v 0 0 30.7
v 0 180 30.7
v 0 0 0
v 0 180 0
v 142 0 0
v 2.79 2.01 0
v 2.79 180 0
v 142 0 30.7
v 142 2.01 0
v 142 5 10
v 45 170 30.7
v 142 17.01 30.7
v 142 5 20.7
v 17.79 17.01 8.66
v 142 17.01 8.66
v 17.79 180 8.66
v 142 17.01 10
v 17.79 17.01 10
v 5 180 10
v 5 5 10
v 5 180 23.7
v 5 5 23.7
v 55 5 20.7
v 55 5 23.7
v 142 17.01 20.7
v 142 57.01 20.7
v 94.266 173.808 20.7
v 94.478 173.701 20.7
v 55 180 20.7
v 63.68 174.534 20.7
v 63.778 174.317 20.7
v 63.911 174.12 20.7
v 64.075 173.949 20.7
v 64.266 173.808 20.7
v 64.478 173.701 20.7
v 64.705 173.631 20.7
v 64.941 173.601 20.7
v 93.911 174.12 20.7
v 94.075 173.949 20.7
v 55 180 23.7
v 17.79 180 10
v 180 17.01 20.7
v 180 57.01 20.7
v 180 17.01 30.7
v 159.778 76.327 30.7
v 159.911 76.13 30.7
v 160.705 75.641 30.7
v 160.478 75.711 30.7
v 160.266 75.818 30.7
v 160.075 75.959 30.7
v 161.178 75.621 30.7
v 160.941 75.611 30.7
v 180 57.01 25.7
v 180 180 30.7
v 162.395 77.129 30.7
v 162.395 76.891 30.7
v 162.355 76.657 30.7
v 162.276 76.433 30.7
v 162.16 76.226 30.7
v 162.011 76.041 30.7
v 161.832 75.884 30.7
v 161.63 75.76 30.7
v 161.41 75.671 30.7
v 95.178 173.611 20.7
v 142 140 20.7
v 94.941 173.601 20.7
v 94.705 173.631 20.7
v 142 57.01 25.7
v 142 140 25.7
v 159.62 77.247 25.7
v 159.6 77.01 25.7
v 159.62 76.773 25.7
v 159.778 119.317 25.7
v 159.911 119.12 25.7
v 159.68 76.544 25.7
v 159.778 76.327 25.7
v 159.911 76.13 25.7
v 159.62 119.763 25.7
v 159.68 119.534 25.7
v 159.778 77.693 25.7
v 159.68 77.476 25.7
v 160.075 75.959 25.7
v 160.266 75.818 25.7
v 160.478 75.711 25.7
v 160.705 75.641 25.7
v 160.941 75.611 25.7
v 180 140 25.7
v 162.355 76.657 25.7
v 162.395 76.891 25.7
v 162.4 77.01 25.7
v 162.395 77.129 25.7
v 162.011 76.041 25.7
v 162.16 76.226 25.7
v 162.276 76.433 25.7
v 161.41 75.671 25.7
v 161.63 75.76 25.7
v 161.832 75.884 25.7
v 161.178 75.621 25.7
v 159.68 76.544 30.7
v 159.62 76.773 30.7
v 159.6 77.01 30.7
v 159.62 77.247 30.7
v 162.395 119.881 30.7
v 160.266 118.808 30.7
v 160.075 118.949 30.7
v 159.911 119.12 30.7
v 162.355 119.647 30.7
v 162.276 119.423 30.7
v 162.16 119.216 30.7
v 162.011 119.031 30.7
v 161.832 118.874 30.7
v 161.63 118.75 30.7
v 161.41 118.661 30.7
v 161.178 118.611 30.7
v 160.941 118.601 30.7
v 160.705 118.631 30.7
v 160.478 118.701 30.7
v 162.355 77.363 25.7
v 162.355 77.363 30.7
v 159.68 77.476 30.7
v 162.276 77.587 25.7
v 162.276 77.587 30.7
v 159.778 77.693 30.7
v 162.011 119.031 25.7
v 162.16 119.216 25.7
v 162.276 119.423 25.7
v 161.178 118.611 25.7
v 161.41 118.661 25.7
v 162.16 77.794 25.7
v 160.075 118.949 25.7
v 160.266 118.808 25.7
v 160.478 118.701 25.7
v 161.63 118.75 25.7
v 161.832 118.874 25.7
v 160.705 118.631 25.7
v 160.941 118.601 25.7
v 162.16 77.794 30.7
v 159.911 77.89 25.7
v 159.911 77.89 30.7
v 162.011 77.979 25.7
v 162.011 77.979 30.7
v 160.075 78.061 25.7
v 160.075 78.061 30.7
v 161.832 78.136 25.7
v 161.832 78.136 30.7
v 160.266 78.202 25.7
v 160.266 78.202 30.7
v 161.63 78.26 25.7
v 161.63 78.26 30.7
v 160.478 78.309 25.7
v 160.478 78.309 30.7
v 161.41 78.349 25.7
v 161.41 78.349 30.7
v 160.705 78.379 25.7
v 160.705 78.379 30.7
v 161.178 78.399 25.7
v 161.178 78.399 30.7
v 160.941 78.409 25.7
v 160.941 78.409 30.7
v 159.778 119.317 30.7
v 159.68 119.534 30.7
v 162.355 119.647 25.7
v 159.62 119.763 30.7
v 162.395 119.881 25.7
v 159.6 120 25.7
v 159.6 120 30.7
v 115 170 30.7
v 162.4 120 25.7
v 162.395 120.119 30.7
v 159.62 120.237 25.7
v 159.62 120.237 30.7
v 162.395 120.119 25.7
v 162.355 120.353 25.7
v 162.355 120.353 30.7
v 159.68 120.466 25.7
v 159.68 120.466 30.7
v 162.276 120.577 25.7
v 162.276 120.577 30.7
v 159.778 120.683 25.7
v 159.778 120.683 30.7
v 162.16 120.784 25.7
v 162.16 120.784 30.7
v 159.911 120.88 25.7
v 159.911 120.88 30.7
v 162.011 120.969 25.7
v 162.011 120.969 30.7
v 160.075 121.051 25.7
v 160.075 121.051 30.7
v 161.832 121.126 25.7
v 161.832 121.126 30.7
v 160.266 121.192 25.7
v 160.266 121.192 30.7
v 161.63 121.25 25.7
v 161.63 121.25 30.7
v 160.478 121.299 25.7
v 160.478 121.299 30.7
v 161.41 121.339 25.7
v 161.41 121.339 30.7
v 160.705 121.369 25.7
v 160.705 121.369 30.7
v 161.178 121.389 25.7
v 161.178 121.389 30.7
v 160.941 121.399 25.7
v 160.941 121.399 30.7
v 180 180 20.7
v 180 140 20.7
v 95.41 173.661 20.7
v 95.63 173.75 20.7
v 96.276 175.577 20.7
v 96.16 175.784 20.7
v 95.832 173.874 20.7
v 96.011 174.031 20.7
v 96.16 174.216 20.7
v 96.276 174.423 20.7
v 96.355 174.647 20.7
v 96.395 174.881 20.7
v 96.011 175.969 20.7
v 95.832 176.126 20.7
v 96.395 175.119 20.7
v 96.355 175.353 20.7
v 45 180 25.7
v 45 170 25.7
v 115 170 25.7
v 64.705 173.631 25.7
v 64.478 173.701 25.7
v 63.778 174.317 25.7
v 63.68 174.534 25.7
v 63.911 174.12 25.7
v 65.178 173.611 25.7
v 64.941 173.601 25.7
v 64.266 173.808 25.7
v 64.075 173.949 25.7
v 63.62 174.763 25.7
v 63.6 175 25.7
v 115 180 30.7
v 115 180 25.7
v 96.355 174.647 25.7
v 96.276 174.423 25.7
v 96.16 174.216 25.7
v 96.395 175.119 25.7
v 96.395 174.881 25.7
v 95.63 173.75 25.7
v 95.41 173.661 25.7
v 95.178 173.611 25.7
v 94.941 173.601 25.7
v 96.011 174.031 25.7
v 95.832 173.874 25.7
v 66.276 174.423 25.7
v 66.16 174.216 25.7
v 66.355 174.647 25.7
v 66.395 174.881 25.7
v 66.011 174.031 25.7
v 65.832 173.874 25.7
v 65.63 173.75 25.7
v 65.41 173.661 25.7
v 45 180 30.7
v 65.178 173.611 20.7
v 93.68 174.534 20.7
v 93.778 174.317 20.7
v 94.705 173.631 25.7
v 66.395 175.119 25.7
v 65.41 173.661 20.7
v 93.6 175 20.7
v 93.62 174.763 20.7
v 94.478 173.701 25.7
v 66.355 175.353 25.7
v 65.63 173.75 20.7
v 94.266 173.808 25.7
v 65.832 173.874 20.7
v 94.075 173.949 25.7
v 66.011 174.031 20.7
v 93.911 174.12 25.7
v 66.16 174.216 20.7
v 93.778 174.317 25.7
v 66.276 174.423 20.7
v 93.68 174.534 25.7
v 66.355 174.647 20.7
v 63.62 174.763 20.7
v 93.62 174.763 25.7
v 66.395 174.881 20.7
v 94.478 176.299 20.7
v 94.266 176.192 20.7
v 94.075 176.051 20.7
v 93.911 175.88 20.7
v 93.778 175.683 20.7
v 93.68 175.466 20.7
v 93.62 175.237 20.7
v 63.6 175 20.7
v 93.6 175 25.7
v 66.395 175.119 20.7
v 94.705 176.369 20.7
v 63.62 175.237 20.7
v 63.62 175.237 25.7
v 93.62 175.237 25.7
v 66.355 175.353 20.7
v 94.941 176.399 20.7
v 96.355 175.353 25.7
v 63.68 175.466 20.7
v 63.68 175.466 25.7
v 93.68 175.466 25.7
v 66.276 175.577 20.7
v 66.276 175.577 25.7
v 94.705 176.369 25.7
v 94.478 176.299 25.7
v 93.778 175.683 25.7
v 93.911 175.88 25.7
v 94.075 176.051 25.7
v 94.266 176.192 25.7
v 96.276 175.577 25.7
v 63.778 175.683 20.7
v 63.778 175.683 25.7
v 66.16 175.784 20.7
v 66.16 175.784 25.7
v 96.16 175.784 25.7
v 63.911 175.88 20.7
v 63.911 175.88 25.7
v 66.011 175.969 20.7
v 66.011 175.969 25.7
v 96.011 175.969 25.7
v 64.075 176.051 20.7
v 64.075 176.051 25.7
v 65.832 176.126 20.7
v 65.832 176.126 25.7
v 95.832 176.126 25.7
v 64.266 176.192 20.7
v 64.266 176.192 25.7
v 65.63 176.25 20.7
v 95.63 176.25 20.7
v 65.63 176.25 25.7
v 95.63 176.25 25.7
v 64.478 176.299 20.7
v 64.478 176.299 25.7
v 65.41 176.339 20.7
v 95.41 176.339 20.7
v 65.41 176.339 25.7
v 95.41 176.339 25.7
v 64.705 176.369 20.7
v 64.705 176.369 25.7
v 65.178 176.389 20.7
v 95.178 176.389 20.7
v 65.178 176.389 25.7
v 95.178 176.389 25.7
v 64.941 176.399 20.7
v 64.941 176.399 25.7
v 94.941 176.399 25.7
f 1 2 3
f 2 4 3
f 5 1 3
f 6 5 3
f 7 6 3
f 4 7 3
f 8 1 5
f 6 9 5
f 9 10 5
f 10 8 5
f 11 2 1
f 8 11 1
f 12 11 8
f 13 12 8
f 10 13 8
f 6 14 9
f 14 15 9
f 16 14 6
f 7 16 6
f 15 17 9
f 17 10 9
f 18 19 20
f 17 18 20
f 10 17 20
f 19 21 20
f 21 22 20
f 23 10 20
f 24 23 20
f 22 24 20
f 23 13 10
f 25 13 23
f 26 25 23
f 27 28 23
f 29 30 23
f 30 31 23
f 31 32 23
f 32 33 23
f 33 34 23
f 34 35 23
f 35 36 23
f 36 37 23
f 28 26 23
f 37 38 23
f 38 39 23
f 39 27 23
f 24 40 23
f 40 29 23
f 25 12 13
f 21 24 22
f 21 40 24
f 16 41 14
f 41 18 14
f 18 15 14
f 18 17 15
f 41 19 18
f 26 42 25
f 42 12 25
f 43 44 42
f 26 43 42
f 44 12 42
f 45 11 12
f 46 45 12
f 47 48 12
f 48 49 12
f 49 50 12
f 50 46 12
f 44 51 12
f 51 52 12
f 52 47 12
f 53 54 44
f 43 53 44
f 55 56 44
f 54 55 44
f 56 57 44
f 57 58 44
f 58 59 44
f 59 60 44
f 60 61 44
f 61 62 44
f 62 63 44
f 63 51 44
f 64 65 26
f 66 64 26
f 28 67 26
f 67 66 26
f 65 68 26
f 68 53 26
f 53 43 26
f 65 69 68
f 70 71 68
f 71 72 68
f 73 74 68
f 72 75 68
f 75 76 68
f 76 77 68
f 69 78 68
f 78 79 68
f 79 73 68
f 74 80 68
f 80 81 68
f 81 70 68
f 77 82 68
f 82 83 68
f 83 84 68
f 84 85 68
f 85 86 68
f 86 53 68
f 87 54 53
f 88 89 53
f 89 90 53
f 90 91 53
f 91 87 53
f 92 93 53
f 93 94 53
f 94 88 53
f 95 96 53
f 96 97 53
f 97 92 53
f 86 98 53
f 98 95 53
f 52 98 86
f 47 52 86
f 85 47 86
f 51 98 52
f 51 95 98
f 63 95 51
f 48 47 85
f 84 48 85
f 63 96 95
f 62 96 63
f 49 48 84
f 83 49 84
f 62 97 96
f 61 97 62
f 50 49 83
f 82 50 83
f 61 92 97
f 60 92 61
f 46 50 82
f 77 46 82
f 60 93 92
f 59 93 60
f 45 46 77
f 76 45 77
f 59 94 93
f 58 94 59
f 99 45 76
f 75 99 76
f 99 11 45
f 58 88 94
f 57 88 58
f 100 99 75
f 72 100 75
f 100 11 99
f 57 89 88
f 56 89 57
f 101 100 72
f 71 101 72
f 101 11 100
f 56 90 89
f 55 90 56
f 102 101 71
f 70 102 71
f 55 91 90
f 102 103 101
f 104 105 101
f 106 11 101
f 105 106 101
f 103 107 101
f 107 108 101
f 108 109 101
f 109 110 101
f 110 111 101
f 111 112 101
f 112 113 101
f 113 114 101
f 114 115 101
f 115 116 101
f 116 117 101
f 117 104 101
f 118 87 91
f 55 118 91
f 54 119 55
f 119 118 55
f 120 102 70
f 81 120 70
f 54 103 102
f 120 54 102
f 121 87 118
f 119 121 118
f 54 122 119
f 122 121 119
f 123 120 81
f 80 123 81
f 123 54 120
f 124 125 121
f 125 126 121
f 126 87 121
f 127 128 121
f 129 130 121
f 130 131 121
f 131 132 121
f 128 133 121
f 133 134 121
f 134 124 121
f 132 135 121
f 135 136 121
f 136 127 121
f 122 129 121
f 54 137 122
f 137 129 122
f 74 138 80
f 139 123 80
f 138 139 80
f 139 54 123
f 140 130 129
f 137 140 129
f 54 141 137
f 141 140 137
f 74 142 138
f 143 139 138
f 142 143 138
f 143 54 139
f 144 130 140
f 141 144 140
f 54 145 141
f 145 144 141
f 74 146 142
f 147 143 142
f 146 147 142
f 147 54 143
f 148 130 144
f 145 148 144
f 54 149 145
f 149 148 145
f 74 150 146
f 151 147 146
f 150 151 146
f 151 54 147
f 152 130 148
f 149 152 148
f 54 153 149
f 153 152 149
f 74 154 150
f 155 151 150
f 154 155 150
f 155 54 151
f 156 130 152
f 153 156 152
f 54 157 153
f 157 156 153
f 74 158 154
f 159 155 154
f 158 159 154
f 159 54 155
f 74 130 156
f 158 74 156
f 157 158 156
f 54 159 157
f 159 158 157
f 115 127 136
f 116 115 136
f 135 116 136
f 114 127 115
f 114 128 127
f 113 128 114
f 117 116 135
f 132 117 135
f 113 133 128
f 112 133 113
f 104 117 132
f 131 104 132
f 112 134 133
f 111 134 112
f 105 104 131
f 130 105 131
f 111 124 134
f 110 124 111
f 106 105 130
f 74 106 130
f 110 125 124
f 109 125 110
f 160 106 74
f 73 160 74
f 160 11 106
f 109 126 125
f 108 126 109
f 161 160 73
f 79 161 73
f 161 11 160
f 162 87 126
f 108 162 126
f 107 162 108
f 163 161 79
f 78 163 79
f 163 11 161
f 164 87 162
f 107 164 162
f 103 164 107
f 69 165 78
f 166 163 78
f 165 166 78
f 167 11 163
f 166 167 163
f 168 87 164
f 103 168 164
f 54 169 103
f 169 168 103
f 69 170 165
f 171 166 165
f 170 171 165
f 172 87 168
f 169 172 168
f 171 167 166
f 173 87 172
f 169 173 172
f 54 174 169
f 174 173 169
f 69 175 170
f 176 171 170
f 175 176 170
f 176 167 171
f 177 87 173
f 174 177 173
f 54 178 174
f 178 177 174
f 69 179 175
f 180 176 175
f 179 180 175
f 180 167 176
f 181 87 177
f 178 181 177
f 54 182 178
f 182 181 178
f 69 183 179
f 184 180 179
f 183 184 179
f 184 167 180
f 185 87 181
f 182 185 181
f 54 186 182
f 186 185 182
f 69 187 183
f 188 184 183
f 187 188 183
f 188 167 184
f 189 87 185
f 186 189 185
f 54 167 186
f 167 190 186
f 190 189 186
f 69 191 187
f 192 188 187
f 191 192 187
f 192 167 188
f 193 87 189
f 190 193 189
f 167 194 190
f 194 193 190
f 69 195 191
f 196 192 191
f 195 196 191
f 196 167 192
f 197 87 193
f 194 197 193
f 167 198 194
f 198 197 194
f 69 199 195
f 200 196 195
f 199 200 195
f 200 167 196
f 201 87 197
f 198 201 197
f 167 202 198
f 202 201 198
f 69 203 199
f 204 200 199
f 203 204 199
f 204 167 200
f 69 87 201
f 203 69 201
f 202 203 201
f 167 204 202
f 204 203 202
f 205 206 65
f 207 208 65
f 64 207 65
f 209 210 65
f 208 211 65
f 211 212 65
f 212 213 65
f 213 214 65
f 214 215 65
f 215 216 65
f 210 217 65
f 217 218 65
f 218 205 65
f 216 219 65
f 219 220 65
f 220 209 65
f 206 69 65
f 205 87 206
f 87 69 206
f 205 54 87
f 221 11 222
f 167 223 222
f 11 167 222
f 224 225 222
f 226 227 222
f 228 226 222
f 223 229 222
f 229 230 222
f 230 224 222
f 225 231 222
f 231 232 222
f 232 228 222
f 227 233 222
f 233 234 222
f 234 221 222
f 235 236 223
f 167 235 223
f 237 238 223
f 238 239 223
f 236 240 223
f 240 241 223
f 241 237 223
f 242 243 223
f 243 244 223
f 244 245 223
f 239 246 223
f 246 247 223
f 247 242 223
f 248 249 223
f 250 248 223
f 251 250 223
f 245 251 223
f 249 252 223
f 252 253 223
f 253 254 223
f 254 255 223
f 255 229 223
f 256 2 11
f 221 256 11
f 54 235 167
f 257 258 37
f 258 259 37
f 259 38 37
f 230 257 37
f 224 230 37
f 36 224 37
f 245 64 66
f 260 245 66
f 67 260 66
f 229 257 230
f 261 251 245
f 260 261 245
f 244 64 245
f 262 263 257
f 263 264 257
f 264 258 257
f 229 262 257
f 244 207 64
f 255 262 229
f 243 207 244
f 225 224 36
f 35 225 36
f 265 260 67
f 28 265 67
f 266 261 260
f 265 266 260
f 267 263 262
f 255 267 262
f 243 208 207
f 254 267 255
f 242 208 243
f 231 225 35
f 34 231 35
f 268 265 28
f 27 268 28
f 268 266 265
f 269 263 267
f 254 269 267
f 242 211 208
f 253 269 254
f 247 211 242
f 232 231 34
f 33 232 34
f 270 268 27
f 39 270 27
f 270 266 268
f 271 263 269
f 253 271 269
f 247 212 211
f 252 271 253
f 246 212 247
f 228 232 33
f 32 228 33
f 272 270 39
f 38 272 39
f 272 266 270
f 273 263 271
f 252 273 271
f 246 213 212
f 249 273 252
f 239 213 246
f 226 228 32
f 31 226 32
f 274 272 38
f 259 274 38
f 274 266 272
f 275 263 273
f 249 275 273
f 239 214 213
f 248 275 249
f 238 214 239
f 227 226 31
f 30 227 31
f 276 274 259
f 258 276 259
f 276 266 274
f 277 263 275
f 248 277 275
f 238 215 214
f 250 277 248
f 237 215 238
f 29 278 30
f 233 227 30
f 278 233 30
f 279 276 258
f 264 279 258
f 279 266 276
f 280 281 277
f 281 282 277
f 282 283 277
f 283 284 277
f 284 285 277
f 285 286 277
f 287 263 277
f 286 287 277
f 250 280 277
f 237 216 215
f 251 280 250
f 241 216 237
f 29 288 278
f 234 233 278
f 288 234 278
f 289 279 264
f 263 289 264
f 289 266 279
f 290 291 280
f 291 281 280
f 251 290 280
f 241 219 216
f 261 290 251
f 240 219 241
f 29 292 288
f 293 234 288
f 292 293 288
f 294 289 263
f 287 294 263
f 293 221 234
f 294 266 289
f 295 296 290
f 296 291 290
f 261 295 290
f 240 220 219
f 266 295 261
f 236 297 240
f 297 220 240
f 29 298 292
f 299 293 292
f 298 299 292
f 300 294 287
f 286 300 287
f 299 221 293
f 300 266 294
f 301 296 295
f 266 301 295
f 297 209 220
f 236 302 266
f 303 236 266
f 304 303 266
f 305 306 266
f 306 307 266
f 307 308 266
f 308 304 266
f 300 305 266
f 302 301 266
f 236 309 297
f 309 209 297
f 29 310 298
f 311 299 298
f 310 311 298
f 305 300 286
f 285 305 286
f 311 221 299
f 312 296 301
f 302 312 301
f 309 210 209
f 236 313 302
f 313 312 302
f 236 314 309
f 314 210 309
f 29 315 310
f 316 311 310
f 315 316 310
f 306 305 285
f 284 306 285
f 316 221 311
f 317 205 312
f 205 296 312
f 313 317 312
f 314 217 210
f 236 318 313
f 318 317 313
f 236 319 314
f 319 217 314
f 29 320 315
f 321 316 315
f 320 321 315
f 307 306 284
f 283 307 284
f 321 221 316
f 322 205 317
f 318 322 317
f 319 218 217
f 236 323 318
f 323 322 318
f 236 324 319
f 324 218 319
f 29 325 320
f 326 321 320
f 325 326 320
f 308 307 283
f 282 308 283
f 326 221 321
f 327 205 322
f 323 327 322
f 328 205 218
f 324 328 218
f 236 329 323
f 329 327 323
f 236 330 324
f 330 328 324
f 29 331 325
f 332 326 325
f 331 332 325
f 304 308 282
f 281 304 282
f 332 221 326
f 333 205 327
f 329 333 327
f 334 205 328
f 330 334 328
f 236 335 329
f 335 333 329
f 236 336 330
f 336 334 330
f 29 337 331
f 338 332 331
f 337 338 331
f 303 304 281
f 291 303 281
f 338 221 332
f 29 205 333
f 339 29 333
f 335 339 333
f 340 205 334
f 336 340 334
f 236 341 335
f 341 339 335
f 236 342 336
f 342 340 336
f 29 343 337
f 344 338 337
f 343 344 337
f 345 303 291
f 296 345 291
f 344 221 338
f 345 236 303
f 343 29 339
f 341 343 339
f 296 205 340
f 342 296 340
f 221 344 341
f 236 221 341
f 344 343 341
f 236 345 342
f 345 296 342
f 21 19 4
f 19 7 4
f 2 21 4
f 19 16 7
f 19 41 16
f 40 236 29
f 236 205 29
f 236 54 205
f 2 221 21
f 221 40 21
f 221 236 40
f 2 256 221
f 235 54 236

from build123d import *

# Parameters (mm, degrees)
CROQUIS1_W              = 180
CROQUIS1_H              = 180
SALIENTE_EXTRUIR1_DEPTH = 30.7
CROQUIS2_W              = 162.21
CROQUIS2_H              = 162.99
CORTAR_EXTRUIR1_DEPTH   = 20.7
CROQUIS4_W              = 175
CROQUIS4_H              = 10.7
CORTAR_EXTRUIR2_DEPTH   = 175
CORTAR_EXTRUIR3_REACH   = 258.403
CROQUIS5_W              = 38
CROQUIS5_H              = 30.7
CROQUIS6_W              = 38
CROQUIS6_H              = 82.99
CORTAR_EXTRUIR4_DEPTH   = 5
CROQUIS7_W              = 50
CROQUIS7_H              = 175
CORTAR_EXTRUIR5_DEPTH   = 3
CROQUIS8_W              = 70
CROQUIS8_H              = 10
CORTAR_EXTRUIR6_DEPTH   = 5
CHAFL_N1_SIZE           = 15
CHAFL_N1_SIZE2          = 8.660254038
CROQUIS9_R              = 1.4
CORTAR_EXTRUIR7_DEPTH   = 20


with BuildPart() as part:
    # Croquis1 → Saliente-Extruir1 (new body)
    with BuildSketch(Plane.XY):
        with Locations((90, 90)):
            Rectangle(CROQUIS1_W, CROQUIS1_H)
    extrude(amount=SALIENTE_EXTRUIR1_DEPTH)

    # Croquis2 → Cortar-Extruir1 (cut)
    with BuildSketch(Plane(origin=(0, 0, 0), x_dir=(-1, 0, 0), z_dir=(0, 0, -1))):
        with Locations((-98.895, 98.505)):
            Rectangle(CROQUIS2_W, CROQUIS2_H)
    extrude(amount=-CORTAR_EXTRUIR1_DEPTH, mode=Mode.SUBTRACT)

    # Croquis4 → Cortar-Extruir2 (cut)
    with BuildSketch(Plane(origin=(0, 180, 0), x_dir=(1, 0, 0), z_dir=(0, 1, 0))):
        with Locations((92.5, -15.35)):
            Rectangle(CROQUIS4_W, CROQUIS4_H)
    extrude(amount=-CORTAR_EXTRUIR2_DEPTH, mode=Mode.SUBTRACT)

    # Cortar-Extruir3: up to this face of the body (flat: up to its plane)
    cortar_extruir3_end = Plane(part.part.faces().sort_by_distance((98.895, 17.01, 5))[0])
    # Croquis5 → Cortar-Extruir3 (cut, up to the picked face)
    with BuildSketch(Plane.XZ, mode=Mode.PRIVATE) as cortar_extruir3_sk1:
        with Locations((161, 15.35)):
            Rectangle(CROQUIS5_W, CROQUIS5_H)
    cortar_extruir3_tool1 = split(extrude(cortar_extruir3_sk1.sketch, amount=-CORTAR_EXTRUIR3_REACH, mode=Mode.PRIVATE), bisect_by=cortar_extruir3_end, keep=Keep.BOTH, mode=Mode.PRIVATE)
    add(cortar_extruir3_tool1.solids().sort_by(Axis((161, 0, 15.35), (0, 1, 0)))[0], mode=Mode.SUBTRACT)

    # Croquis6 → Cortar-Extruir4 (cut)
    with BuildSketch(Plane(origin=(0, 0, 20.7), x_dir=(-1, 0, 0), z_dir=(0, 0, -1))):
        with Locations((-161, 98.505)):
            Rectangle(CROQUIS6_W, CROQUIS6_H)
    extrude(amount=-CORTAR_EXTRUIR4_DEPTH, mode=Mode.SUBTRACT)

    # Croquis7 → Cortar-Extruir5 (cut)
    with BuildSketch(Plane(origin=(0, 0, 20.7), x_dir=(-1, 0, 0), z_dir=(0, 0, -1))):
        with Locations((-30, 92.5)):
            Rectangle(CROQUIS7_W, CROQUIS7_H)
    extrude(amount=-CORTAR_EXTRUIR5_DEPTH, mode=Mode.SUBTRACT)

    # Croquis8 → Cortar-Extruir6 (cut)
    with BuildSketch(Plane.XY.offset(30.7)):
        with Locations((80, 175)):
            Rectangle(CROQUIS8_W, CROQUIS8_H)
    extrude(amount=-CORTAR_EXTRUIR6_DEPTH, mode=Mode.SUBTRACT)

    # Chaflán1
    chafl_n1_edges = [part.edges().sort_by_distance(p)[0] for p in [
        (17.79, 98.505, 0),
        (79.895, 17.01, 0),
    ]]
    chafl_n1_side = [part.faces().sort_by_distance(p)[0] for p in [
        (8.895, 177.707315983, 0),
    ]]
    chamfer(chafl_n1_edges, length=CHAFL_N1_SIZE, length2=CHAFL_N1_SIZE2, reference=chafl_n1_side[0])

    # Croquis9 → Cortar-Extruir7 (cut)
    with BuildSketch(Plane(origin=(0, 0, 20.7), x_dir=(-1, 0, 0), z_dir=(0, 0, -1))):
        with Locations((-161, 77.01)):
            Circle(CROQUIS9_R)
        with Locations((-161, 120)):
            Circle(CROQUIS9_R)
        with Locations((-65, 175)):
            Circle(CROQUIS9_R)
        with Locations((-95, 175)):
            Circle(CROQUIS9_R)
    extrude(amount=-CORTAR_EXTRUIR7_DEPTH, mode=Mode.SUBTRACT)


solid = part.part
